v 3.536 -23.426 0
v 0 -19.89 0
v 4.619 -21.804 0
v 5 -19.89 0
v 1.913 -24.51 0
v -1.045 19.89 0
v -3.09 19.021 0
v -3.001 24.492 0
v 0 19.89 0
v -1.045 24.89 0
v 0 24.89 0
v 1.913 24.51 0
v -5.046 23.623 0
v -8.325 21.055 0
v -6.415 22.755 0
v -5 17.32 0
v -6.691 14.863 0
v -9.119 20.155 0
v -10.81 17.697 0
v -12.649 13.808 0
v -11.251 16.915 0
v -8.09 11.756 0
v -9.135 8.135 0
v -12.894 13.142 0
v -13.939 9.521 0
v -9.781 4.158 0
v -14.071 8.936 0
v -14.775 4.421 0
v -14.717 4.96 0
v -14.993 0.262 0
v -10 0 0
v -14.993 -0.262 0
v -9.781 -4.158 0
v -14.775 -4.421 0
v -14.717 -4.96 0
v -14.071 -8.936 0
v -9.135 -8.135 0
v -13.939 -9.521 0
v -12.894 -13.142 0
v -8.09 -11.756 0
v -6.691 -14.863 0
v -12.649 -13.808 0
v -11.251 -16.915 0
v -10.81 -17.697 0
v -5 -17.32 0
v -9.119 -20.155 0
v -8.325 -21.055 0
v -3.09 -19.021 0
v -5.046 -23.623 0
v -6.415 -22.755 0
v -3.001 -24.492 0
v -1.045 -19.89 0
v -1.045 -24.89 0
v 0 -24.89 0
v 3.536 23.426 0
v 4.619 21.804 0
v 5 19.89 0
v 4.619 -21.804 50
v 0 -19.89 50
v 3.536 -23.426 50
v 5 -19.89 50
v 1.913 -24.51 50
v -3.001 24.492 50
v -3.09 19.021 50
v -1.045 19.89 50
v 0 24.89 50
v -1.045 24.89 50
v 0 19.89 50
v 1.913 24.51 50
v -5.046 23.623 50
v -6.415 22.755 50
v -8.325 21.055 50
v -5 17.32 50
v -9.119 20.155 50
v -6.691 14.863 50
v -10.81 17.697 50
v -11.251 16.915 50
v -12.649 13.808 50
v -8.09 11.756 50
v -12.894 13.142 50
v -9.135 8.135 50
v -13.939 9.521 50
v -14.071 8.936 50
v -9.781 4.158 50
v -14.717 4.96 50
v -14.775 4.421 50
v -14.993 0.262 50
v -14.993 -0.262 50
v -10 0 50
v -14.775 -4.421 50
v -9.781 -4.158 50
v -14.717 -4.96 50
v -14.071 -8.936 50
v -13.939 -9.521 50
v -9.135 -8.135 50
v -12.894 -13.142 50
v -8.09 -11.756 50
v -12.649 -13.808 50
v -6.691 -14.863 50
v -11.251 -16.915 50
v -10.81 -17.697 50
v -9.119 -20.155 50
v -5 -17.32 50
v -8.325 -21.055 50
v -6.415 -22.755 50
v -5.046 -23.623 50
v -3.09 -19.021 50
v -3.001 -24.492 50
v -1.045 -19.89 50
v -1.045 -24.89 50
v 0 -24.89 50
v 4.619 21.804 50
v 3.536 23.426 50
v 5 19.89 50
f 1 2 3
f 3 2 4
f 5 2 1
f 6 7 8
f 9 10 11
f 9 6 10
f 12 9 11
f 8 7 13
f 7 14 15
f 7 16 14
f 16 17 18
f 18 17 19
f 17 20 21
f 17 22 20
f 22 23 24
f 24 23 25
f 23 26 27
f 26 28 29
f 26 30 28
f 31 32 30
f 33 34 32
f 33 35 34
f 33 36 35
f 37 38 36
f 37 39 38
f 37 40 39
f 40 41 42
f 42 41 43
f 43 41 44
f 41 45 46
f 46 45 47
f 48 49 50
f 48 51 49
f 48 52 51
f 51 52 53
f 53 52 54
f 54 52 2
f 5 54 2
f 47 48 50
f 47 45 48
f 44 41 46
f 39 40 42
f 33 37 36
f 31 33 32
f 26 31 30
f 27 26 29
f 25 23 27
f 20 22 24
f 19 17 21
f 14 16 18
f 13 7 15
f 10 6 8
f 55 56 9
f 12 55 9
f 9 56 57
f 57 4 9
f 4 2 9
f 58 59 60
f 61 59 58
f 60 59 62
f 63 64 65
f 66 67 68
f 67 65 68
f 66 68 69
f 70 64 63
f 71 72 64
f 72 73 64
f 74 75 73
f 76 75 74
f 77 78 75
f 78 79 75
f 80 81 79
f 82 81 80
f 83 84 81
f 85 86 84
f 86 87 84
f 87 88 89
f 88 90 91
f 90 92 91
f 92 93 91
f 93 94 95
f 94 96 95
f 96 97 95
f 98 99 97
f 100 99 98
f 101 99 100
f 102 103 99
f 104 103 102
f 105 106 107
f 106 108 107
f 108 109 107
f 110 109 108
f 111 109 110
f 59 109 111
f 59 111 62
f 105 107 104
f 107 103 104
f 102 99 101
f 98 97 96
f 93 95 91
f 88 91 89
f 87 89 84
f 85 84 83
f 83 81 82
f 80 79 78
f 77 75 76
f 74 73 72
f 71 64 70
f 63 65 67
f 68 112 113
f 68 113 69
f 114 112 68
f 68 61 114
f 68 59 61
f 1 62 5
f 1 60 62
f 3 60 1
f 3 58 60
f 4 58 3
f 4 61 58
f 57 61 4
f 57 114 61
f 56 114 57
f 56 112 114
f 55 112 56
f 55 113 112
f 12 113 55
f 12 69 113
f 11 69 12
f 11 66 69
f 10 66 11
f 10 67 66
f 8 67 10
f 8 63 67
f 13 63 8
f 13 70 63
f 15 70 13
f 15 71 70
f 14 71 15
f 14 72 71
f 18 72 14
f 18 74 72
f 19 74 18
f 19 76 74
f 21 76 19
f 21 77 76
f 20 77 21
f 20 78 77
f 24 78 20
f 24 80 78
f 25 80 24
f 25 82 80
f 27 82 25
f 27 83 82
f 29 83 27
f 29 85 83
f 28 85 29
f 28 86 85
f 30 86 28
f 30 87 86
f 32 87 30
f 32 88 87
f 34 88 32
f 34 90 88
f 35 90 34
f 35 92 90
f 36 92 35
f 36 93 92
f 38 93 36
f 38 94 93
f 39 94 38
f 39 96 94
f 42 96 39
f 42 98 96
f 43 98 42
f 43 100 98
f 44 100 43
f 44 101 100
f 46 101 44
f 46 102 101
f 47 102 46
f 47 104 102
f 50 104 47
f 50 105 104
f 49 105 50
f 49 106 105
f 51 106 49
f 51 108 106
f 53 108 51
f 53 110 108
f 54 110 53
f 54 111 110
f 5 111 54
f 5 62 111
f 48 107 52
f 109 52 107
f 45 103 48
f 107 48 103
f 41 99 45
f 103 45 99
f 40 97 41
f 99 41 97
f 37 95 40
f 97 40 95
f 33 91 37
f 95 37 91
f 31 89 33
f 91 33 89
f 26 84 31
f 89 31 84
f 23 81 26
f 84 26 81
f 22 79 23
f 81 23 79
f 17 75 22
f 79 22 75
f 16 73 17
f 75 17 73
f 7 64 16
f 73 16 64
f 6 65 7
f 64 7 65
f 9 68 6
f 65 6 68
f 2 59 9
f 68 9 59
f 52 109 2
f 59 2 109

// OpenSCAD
module borde(valor){
    difference(){
        offset(valor)children();
        children();
    }
}
linear_extrude(50)
borde(5)
scale([1,2,1])
difference(){
    circle(d=20);
    translate([0,-50,0])
    square([100,100]);
}
